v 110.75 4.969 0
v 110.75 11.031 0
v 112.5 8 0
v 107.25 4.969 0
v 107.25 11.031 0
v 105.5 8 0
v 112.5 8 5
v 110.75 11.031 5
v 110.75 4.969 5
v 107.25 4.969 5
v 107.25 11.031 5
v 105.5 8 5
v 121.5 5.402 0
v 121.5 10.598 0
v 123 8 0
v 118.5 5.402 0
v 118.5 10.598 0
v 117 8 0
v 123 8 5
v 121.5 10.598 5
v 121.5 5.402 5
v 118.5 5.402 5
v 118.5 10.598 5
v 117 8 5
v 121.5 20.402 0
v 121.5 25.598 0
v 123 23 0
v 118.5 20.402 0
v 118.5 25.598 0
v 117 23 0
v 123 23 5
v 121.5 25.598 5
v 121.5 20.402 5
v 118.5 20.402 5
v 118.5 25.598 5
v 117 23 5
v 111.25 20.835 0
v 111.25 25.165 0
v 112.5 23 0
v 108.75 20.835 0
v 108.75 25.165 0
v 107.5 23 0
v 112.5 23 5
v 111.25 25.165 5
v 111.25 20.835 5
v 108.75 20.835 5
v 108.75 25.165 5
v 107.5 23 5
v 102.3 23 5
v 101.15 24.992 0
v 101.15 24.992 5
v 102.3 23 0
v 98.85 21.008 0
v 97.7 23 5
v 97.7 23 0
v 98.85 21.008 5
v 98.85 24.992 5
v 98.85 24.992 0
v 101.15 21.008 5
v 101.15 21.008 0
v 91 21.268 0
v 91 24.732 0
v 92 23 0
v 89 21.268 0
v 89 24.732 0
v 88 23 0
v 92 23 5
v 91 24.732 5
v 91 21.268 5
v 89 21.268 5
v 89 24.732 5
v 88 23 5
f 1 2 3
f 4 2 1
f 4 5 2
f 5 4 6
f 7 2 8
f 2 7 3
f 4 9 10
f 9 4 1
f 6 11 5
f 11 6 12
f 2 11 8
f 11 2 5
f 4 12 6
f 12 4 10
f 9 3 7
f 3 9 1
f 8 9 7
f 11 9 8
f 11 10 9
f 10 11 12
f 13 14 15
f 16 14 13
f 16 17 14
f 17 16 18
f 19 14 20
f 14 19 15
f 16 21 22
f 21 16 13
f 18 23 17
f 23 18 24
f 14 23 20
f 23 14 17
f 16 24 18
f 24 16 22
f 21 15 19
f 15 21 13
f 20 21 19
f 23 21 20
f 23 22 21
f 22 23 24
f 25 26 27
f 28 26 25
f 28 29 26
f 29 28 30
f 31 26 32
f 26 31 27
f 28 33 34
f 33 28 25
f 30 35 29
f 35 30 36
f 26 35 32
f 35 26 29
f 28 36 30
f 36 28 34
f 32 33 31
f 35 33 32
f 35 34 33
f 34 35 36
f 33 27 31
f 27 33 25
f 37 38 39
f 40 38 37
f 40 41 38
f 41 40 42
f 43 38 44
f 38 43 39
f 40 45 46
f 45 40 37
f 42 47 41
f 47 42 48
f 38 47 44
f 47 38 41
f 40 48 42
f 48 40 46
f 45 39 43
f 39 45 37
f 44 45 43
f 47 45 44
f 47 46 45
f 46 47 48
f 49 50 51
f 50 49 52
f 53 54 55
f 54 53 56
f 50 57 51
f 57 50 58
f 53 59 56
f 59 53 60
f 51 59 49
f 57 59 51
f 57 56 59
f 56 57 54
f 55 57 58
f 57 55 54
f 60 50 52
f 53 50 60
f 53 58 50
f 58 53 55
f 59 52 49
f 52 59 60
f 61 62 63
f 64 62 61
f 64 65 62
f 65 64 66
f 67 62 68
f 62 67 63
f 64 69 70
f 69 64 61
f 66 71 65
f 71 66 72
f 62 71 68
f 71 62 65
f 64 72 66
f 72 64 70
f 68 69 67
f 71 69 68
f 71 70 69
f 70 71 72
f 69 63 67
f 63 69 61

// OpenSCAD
union() {
  union() {
    union() {
      union() {
        union() {
          difference() {
            translate([109.0000000000, 8.0000033333, 2.5000000000]) {
              scale([7.0000000000, 6.0620000000, 5.0000000000]) {
                rotate([0.0000000000, 0.0000000000, -0.0000000000]) {
                  scale([0.5, 0.577, 1]) cylinder($fn = 6, center = true);
                }
              }
            }
            /* EMPTY */ sphere(r = 0);
          }
          difference() {
            translate([120.0000000000, 8.0000066667, 2.5000000000]) {
              scale([6.0000000000, 5.1960000000, 5.0000000000]) {
                rotate([0.0000000000, 0.0000000000, -0.0000000000]) {
                  scale([0.5, 0.577, 1]) cylinder($fn = 6, center = true);
                }
              }
            }
            /* EMPTY */ sphere(r = 0);
          }
        }
        difference() {
          translate([120.0000000000, 23.0000000000, 2.5000000000]) {
            scale([6.0000000000, 5.1960000000, 5.0000000000]) {
              rotate([0.0000000000, 0.0000000000, -0.0000000000]) {
                scale([0.5, 0.577, 1]) cylinder($fn = 6, center = true);
              }
            }
          }
          /* EMPTY */ sphere(r = 0);
        }
      }
      difference() {
        translate([110.0000000000, 23.0000000000, 2.5000000000]) {
          scale([5.0000000000, 4.3300000000, 5.0000000000]) {
            rotate([0.0000000000, 0.0000000000, -0.0000000000]) {
              scale([0.5, 0.577, 1]) cylinder($fn = 6, center = true);
            }
          }
        }
        /* EMPTY */ sphere(r = 0);
      }
    }
    difference() {
      translate([100.0000000000, 23.0000000000, 2.5000000000]) {
        scale([4.6000000000, 3.9840000000, 5.0000000000]) {
          rotate([0.0000000000, 0.0000000000, -0.0000000000]) {
            scale([0.5, 0.577, 1]) cylinder($fn = 6, center = true);
          }
        }
      }
      /* EMPTY */ sphere(r = 0);
    }
  }
  difference() {
    translate([90.0000000000, 22.9999666667, 2.5000000000]) {
      scale([4.0000000000, 3.4640000000, 5.0000000000]) {
        rotate([0.0000000000, 0.0000000000, -0.0000000000]) {
          scale([0.5, 0.577, 1]) cylinder($fn = 6, center = true);
        }
      }
    }
    /* EMPTY */ sphere(r = 0);
  }
}
